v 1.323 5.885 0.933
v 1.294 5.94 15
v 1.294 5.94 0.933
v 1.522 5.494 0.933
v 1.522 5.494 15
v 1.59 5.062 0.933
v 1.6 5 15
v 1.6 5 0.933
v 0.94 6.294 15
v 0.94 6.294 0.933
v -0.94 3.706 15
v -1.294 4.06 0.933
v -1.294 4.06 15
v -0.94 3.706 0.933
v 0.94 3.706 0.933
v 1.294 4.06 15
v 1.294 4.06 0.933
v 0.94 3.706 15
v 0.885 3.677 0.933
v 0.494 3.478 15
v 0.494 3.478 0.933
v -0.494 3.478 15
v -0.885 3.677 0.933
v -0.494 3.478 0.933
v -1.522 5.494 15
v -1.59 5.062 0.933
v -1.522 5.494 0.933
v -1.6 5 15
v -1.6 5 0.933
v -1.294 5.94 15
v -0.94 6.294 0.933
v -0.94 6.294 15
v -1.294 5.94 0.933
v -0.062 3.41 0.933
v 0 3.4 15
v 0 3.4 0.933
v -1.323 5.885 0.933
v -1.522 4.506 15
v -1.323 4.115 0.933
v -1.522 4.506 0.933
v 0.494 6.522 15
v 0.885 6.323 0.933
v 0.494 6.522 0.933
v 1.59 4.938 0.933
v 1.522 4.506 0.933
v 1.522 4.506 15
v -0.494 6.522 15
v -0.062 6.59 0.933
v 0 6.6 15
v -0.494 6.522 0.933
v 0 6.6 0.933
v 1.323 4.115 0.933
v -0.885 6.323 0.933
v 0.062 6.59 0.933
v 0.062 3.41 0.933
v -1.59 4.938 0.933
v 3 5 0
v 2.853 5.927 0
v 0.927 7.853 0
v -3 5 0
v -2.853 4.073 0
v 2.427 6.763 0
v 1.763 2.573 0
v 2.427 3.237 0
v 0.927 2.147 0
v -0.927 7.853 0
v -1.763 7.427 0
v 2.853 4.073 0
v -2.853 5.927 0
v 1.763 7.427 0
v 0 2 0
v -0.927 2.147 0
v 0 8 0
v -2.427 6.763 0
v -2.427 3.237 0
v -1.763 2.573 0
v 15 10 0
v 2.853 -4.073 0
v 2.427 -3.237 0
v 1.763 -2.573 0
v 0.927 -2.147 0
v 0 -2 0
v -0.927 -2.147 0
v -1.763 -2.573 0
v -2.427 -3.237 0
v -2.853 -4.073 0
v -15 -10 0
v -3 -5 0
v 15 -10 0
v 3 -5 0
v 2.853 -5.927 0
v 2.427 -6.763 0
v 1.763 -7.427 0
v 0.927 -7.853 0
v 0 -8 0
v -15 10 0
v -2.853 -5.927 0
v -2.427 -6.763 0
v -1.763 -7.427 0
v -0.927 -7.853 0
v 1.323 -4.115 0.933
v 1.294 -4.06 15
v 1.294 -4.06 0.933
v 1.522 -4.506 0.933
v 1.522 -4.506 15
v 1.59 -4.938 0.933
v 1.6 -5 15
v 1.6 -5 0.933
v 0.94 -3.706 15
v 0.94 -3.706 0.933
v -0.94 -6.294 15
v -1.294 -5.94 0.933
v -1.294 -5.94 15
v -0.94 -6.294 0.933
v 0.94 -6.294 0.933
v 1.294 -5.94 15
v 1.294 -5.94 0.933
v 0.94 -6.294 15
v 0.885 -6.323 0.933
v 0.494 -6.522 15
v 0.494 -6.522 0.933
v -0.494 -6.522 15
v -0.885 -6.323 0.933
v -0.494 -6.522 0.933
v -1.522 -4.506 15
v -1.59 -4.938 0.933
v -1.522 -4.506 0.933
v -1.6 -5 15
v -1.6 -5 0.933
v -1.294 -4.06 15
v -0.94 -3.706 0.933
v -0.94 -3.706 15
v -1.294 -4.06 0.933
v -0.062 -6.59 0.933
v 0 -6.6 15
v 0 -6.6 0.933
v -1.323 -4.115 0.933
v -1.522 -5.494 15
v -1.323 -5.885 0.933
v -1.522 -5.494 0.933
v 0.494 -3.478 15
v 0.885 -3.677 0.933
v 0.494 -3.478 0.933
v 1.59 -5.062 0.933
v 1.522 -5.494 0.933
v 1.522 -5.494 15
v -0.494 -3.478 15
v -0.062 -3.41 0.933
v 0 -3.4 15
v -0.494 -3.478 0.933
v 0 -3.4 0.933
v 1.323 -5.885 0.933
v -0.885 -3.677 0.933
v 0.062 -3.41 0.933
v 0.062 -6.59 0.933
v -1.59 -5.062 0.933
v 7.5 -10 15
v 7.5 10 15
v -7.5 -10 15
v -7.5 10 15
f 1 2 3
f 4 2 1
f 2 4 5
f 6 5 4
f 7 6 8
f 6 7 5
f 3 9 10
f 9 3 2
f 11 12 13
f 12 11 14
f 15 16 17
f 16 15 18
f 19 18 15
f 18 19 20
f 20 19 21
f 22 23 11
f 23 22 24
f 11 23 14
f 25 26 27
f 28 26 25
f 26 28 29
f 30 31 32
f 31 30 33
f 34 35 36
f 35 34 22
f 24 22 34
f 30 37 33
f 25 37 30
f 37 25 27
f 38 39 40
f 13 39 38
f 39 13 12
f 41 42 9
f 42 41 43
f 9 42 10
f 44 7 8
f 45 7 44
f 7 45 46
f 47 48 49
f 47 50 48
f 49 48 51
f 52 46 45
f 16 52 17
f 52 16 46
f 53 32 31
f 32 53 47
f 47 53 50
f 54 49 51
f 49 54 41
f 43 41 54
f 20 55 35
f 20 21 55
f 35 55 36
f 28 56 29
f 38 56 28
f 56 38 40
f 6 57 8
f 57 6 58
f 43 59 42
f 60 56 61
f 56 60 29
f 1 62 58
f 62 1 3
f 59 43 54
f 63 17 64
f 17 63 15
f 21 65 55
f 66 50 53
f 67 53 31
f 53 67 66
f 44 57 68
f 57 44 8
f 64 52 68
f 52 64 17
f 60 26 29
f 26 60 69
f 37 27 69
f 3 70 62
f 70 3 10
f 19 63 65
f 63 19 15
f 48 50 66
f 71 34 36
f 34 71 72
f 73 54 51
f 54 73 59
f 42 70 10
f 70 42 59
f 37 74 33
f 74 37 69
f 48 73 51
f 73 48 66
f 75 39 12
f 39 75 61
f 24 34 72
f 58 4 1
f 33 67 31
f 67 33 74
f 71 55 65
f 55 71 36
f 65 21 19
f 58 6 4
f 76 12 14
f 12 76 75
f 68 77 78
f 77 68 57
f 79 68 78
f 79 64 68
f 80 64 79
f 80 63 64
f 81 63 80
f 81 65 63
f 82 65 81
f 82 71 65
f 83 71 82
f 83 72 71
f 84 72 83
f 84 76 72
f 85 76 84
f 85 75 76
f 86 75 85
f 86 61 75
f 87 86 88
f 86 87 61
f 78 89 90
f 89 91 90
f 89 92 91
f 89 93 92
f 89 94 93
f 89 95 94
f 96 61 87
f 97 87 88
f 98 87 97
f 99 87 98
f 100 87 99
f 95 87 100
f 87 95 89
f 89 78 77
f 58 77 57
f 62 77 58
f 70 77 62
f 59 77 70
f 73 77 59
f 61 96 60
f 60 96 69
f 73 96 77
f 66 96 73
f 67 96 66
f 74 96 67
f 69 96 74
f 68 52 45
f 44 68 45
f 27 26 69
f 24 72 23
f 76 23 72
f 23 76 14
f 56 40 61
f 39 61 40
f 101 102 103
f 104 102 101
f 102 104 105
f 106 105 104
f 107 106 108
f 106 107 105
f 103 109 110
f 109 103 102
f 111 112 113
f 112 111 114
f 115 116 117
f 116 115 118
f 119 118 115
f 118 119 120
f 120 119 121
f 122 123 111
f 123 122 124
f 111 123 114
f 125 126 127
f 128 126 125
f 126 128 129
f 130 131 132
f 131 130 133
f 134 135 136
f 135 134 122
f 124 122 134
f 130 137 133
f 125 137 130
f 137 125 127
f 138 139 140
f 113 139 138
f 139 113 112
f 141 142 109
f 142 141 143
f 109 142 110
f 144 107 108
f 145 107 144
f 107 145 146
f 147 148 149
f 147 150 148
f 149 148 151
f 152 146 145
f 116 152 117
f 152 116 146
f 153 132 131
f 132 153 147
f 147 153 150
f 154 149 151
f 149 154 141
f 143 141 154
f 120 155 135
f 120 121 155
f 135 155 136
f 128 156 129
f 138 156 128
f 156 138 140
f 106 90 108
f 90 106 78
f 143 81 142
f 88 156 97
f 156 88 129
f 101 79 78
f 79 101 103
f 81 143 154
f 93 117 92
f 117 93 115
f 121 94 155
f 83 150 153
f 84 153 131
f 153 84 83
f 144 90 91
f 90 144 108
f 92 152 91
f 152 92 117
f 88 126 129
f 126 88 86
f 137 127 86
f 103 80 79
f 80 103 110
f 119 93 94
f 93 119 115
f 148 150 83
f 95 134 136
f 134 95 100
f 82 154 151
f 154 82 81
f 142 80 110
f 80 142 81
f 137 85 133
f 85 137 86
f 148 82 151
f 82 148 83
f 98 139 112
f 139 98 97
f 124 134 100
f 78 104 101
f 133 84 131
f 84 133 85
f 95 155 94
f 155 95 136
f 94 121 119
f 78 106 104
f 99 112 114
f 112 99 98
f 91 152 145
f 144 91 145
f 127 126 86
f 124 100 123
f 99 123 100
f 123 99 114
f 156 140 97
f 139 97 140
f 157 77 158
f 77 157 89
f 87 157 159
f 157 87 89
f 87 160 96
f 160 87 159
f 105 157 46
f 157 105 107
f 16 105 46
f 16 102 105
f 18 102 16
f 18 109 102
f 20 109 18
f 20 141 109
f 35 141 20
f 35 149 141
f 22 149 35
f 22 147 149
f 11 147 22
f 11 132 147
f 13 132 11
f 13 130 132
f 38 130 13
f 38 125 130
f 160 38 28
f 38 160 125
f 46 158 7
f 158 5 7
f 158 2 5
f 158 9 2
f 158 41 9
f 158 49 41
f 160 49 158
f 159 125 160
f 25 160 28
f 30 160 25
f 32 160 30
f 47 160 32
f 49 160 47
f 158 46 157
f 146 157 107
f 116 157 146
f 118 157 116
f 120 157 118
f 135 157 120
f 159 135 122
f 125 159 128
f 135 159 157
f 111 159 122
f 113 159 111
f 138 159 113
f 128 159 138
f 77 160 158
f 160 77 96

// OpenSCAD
$fn=20;

module base() {

translate([0, 10, 0])
rotate([90, 0, 0])
linear_extrude(20)
polygon([[-15,0], [15,0], [7.5, 15], [-7.5, 15]]);

}

module screw() {

cylinder(100, 1.6, 1.6, true);
cylinder(1, 3, 1.5);
}

difference() {
base();
union() {
translate([0, 5, 0]) screw();
translate([0, -5, 0]) screw();
}
}
